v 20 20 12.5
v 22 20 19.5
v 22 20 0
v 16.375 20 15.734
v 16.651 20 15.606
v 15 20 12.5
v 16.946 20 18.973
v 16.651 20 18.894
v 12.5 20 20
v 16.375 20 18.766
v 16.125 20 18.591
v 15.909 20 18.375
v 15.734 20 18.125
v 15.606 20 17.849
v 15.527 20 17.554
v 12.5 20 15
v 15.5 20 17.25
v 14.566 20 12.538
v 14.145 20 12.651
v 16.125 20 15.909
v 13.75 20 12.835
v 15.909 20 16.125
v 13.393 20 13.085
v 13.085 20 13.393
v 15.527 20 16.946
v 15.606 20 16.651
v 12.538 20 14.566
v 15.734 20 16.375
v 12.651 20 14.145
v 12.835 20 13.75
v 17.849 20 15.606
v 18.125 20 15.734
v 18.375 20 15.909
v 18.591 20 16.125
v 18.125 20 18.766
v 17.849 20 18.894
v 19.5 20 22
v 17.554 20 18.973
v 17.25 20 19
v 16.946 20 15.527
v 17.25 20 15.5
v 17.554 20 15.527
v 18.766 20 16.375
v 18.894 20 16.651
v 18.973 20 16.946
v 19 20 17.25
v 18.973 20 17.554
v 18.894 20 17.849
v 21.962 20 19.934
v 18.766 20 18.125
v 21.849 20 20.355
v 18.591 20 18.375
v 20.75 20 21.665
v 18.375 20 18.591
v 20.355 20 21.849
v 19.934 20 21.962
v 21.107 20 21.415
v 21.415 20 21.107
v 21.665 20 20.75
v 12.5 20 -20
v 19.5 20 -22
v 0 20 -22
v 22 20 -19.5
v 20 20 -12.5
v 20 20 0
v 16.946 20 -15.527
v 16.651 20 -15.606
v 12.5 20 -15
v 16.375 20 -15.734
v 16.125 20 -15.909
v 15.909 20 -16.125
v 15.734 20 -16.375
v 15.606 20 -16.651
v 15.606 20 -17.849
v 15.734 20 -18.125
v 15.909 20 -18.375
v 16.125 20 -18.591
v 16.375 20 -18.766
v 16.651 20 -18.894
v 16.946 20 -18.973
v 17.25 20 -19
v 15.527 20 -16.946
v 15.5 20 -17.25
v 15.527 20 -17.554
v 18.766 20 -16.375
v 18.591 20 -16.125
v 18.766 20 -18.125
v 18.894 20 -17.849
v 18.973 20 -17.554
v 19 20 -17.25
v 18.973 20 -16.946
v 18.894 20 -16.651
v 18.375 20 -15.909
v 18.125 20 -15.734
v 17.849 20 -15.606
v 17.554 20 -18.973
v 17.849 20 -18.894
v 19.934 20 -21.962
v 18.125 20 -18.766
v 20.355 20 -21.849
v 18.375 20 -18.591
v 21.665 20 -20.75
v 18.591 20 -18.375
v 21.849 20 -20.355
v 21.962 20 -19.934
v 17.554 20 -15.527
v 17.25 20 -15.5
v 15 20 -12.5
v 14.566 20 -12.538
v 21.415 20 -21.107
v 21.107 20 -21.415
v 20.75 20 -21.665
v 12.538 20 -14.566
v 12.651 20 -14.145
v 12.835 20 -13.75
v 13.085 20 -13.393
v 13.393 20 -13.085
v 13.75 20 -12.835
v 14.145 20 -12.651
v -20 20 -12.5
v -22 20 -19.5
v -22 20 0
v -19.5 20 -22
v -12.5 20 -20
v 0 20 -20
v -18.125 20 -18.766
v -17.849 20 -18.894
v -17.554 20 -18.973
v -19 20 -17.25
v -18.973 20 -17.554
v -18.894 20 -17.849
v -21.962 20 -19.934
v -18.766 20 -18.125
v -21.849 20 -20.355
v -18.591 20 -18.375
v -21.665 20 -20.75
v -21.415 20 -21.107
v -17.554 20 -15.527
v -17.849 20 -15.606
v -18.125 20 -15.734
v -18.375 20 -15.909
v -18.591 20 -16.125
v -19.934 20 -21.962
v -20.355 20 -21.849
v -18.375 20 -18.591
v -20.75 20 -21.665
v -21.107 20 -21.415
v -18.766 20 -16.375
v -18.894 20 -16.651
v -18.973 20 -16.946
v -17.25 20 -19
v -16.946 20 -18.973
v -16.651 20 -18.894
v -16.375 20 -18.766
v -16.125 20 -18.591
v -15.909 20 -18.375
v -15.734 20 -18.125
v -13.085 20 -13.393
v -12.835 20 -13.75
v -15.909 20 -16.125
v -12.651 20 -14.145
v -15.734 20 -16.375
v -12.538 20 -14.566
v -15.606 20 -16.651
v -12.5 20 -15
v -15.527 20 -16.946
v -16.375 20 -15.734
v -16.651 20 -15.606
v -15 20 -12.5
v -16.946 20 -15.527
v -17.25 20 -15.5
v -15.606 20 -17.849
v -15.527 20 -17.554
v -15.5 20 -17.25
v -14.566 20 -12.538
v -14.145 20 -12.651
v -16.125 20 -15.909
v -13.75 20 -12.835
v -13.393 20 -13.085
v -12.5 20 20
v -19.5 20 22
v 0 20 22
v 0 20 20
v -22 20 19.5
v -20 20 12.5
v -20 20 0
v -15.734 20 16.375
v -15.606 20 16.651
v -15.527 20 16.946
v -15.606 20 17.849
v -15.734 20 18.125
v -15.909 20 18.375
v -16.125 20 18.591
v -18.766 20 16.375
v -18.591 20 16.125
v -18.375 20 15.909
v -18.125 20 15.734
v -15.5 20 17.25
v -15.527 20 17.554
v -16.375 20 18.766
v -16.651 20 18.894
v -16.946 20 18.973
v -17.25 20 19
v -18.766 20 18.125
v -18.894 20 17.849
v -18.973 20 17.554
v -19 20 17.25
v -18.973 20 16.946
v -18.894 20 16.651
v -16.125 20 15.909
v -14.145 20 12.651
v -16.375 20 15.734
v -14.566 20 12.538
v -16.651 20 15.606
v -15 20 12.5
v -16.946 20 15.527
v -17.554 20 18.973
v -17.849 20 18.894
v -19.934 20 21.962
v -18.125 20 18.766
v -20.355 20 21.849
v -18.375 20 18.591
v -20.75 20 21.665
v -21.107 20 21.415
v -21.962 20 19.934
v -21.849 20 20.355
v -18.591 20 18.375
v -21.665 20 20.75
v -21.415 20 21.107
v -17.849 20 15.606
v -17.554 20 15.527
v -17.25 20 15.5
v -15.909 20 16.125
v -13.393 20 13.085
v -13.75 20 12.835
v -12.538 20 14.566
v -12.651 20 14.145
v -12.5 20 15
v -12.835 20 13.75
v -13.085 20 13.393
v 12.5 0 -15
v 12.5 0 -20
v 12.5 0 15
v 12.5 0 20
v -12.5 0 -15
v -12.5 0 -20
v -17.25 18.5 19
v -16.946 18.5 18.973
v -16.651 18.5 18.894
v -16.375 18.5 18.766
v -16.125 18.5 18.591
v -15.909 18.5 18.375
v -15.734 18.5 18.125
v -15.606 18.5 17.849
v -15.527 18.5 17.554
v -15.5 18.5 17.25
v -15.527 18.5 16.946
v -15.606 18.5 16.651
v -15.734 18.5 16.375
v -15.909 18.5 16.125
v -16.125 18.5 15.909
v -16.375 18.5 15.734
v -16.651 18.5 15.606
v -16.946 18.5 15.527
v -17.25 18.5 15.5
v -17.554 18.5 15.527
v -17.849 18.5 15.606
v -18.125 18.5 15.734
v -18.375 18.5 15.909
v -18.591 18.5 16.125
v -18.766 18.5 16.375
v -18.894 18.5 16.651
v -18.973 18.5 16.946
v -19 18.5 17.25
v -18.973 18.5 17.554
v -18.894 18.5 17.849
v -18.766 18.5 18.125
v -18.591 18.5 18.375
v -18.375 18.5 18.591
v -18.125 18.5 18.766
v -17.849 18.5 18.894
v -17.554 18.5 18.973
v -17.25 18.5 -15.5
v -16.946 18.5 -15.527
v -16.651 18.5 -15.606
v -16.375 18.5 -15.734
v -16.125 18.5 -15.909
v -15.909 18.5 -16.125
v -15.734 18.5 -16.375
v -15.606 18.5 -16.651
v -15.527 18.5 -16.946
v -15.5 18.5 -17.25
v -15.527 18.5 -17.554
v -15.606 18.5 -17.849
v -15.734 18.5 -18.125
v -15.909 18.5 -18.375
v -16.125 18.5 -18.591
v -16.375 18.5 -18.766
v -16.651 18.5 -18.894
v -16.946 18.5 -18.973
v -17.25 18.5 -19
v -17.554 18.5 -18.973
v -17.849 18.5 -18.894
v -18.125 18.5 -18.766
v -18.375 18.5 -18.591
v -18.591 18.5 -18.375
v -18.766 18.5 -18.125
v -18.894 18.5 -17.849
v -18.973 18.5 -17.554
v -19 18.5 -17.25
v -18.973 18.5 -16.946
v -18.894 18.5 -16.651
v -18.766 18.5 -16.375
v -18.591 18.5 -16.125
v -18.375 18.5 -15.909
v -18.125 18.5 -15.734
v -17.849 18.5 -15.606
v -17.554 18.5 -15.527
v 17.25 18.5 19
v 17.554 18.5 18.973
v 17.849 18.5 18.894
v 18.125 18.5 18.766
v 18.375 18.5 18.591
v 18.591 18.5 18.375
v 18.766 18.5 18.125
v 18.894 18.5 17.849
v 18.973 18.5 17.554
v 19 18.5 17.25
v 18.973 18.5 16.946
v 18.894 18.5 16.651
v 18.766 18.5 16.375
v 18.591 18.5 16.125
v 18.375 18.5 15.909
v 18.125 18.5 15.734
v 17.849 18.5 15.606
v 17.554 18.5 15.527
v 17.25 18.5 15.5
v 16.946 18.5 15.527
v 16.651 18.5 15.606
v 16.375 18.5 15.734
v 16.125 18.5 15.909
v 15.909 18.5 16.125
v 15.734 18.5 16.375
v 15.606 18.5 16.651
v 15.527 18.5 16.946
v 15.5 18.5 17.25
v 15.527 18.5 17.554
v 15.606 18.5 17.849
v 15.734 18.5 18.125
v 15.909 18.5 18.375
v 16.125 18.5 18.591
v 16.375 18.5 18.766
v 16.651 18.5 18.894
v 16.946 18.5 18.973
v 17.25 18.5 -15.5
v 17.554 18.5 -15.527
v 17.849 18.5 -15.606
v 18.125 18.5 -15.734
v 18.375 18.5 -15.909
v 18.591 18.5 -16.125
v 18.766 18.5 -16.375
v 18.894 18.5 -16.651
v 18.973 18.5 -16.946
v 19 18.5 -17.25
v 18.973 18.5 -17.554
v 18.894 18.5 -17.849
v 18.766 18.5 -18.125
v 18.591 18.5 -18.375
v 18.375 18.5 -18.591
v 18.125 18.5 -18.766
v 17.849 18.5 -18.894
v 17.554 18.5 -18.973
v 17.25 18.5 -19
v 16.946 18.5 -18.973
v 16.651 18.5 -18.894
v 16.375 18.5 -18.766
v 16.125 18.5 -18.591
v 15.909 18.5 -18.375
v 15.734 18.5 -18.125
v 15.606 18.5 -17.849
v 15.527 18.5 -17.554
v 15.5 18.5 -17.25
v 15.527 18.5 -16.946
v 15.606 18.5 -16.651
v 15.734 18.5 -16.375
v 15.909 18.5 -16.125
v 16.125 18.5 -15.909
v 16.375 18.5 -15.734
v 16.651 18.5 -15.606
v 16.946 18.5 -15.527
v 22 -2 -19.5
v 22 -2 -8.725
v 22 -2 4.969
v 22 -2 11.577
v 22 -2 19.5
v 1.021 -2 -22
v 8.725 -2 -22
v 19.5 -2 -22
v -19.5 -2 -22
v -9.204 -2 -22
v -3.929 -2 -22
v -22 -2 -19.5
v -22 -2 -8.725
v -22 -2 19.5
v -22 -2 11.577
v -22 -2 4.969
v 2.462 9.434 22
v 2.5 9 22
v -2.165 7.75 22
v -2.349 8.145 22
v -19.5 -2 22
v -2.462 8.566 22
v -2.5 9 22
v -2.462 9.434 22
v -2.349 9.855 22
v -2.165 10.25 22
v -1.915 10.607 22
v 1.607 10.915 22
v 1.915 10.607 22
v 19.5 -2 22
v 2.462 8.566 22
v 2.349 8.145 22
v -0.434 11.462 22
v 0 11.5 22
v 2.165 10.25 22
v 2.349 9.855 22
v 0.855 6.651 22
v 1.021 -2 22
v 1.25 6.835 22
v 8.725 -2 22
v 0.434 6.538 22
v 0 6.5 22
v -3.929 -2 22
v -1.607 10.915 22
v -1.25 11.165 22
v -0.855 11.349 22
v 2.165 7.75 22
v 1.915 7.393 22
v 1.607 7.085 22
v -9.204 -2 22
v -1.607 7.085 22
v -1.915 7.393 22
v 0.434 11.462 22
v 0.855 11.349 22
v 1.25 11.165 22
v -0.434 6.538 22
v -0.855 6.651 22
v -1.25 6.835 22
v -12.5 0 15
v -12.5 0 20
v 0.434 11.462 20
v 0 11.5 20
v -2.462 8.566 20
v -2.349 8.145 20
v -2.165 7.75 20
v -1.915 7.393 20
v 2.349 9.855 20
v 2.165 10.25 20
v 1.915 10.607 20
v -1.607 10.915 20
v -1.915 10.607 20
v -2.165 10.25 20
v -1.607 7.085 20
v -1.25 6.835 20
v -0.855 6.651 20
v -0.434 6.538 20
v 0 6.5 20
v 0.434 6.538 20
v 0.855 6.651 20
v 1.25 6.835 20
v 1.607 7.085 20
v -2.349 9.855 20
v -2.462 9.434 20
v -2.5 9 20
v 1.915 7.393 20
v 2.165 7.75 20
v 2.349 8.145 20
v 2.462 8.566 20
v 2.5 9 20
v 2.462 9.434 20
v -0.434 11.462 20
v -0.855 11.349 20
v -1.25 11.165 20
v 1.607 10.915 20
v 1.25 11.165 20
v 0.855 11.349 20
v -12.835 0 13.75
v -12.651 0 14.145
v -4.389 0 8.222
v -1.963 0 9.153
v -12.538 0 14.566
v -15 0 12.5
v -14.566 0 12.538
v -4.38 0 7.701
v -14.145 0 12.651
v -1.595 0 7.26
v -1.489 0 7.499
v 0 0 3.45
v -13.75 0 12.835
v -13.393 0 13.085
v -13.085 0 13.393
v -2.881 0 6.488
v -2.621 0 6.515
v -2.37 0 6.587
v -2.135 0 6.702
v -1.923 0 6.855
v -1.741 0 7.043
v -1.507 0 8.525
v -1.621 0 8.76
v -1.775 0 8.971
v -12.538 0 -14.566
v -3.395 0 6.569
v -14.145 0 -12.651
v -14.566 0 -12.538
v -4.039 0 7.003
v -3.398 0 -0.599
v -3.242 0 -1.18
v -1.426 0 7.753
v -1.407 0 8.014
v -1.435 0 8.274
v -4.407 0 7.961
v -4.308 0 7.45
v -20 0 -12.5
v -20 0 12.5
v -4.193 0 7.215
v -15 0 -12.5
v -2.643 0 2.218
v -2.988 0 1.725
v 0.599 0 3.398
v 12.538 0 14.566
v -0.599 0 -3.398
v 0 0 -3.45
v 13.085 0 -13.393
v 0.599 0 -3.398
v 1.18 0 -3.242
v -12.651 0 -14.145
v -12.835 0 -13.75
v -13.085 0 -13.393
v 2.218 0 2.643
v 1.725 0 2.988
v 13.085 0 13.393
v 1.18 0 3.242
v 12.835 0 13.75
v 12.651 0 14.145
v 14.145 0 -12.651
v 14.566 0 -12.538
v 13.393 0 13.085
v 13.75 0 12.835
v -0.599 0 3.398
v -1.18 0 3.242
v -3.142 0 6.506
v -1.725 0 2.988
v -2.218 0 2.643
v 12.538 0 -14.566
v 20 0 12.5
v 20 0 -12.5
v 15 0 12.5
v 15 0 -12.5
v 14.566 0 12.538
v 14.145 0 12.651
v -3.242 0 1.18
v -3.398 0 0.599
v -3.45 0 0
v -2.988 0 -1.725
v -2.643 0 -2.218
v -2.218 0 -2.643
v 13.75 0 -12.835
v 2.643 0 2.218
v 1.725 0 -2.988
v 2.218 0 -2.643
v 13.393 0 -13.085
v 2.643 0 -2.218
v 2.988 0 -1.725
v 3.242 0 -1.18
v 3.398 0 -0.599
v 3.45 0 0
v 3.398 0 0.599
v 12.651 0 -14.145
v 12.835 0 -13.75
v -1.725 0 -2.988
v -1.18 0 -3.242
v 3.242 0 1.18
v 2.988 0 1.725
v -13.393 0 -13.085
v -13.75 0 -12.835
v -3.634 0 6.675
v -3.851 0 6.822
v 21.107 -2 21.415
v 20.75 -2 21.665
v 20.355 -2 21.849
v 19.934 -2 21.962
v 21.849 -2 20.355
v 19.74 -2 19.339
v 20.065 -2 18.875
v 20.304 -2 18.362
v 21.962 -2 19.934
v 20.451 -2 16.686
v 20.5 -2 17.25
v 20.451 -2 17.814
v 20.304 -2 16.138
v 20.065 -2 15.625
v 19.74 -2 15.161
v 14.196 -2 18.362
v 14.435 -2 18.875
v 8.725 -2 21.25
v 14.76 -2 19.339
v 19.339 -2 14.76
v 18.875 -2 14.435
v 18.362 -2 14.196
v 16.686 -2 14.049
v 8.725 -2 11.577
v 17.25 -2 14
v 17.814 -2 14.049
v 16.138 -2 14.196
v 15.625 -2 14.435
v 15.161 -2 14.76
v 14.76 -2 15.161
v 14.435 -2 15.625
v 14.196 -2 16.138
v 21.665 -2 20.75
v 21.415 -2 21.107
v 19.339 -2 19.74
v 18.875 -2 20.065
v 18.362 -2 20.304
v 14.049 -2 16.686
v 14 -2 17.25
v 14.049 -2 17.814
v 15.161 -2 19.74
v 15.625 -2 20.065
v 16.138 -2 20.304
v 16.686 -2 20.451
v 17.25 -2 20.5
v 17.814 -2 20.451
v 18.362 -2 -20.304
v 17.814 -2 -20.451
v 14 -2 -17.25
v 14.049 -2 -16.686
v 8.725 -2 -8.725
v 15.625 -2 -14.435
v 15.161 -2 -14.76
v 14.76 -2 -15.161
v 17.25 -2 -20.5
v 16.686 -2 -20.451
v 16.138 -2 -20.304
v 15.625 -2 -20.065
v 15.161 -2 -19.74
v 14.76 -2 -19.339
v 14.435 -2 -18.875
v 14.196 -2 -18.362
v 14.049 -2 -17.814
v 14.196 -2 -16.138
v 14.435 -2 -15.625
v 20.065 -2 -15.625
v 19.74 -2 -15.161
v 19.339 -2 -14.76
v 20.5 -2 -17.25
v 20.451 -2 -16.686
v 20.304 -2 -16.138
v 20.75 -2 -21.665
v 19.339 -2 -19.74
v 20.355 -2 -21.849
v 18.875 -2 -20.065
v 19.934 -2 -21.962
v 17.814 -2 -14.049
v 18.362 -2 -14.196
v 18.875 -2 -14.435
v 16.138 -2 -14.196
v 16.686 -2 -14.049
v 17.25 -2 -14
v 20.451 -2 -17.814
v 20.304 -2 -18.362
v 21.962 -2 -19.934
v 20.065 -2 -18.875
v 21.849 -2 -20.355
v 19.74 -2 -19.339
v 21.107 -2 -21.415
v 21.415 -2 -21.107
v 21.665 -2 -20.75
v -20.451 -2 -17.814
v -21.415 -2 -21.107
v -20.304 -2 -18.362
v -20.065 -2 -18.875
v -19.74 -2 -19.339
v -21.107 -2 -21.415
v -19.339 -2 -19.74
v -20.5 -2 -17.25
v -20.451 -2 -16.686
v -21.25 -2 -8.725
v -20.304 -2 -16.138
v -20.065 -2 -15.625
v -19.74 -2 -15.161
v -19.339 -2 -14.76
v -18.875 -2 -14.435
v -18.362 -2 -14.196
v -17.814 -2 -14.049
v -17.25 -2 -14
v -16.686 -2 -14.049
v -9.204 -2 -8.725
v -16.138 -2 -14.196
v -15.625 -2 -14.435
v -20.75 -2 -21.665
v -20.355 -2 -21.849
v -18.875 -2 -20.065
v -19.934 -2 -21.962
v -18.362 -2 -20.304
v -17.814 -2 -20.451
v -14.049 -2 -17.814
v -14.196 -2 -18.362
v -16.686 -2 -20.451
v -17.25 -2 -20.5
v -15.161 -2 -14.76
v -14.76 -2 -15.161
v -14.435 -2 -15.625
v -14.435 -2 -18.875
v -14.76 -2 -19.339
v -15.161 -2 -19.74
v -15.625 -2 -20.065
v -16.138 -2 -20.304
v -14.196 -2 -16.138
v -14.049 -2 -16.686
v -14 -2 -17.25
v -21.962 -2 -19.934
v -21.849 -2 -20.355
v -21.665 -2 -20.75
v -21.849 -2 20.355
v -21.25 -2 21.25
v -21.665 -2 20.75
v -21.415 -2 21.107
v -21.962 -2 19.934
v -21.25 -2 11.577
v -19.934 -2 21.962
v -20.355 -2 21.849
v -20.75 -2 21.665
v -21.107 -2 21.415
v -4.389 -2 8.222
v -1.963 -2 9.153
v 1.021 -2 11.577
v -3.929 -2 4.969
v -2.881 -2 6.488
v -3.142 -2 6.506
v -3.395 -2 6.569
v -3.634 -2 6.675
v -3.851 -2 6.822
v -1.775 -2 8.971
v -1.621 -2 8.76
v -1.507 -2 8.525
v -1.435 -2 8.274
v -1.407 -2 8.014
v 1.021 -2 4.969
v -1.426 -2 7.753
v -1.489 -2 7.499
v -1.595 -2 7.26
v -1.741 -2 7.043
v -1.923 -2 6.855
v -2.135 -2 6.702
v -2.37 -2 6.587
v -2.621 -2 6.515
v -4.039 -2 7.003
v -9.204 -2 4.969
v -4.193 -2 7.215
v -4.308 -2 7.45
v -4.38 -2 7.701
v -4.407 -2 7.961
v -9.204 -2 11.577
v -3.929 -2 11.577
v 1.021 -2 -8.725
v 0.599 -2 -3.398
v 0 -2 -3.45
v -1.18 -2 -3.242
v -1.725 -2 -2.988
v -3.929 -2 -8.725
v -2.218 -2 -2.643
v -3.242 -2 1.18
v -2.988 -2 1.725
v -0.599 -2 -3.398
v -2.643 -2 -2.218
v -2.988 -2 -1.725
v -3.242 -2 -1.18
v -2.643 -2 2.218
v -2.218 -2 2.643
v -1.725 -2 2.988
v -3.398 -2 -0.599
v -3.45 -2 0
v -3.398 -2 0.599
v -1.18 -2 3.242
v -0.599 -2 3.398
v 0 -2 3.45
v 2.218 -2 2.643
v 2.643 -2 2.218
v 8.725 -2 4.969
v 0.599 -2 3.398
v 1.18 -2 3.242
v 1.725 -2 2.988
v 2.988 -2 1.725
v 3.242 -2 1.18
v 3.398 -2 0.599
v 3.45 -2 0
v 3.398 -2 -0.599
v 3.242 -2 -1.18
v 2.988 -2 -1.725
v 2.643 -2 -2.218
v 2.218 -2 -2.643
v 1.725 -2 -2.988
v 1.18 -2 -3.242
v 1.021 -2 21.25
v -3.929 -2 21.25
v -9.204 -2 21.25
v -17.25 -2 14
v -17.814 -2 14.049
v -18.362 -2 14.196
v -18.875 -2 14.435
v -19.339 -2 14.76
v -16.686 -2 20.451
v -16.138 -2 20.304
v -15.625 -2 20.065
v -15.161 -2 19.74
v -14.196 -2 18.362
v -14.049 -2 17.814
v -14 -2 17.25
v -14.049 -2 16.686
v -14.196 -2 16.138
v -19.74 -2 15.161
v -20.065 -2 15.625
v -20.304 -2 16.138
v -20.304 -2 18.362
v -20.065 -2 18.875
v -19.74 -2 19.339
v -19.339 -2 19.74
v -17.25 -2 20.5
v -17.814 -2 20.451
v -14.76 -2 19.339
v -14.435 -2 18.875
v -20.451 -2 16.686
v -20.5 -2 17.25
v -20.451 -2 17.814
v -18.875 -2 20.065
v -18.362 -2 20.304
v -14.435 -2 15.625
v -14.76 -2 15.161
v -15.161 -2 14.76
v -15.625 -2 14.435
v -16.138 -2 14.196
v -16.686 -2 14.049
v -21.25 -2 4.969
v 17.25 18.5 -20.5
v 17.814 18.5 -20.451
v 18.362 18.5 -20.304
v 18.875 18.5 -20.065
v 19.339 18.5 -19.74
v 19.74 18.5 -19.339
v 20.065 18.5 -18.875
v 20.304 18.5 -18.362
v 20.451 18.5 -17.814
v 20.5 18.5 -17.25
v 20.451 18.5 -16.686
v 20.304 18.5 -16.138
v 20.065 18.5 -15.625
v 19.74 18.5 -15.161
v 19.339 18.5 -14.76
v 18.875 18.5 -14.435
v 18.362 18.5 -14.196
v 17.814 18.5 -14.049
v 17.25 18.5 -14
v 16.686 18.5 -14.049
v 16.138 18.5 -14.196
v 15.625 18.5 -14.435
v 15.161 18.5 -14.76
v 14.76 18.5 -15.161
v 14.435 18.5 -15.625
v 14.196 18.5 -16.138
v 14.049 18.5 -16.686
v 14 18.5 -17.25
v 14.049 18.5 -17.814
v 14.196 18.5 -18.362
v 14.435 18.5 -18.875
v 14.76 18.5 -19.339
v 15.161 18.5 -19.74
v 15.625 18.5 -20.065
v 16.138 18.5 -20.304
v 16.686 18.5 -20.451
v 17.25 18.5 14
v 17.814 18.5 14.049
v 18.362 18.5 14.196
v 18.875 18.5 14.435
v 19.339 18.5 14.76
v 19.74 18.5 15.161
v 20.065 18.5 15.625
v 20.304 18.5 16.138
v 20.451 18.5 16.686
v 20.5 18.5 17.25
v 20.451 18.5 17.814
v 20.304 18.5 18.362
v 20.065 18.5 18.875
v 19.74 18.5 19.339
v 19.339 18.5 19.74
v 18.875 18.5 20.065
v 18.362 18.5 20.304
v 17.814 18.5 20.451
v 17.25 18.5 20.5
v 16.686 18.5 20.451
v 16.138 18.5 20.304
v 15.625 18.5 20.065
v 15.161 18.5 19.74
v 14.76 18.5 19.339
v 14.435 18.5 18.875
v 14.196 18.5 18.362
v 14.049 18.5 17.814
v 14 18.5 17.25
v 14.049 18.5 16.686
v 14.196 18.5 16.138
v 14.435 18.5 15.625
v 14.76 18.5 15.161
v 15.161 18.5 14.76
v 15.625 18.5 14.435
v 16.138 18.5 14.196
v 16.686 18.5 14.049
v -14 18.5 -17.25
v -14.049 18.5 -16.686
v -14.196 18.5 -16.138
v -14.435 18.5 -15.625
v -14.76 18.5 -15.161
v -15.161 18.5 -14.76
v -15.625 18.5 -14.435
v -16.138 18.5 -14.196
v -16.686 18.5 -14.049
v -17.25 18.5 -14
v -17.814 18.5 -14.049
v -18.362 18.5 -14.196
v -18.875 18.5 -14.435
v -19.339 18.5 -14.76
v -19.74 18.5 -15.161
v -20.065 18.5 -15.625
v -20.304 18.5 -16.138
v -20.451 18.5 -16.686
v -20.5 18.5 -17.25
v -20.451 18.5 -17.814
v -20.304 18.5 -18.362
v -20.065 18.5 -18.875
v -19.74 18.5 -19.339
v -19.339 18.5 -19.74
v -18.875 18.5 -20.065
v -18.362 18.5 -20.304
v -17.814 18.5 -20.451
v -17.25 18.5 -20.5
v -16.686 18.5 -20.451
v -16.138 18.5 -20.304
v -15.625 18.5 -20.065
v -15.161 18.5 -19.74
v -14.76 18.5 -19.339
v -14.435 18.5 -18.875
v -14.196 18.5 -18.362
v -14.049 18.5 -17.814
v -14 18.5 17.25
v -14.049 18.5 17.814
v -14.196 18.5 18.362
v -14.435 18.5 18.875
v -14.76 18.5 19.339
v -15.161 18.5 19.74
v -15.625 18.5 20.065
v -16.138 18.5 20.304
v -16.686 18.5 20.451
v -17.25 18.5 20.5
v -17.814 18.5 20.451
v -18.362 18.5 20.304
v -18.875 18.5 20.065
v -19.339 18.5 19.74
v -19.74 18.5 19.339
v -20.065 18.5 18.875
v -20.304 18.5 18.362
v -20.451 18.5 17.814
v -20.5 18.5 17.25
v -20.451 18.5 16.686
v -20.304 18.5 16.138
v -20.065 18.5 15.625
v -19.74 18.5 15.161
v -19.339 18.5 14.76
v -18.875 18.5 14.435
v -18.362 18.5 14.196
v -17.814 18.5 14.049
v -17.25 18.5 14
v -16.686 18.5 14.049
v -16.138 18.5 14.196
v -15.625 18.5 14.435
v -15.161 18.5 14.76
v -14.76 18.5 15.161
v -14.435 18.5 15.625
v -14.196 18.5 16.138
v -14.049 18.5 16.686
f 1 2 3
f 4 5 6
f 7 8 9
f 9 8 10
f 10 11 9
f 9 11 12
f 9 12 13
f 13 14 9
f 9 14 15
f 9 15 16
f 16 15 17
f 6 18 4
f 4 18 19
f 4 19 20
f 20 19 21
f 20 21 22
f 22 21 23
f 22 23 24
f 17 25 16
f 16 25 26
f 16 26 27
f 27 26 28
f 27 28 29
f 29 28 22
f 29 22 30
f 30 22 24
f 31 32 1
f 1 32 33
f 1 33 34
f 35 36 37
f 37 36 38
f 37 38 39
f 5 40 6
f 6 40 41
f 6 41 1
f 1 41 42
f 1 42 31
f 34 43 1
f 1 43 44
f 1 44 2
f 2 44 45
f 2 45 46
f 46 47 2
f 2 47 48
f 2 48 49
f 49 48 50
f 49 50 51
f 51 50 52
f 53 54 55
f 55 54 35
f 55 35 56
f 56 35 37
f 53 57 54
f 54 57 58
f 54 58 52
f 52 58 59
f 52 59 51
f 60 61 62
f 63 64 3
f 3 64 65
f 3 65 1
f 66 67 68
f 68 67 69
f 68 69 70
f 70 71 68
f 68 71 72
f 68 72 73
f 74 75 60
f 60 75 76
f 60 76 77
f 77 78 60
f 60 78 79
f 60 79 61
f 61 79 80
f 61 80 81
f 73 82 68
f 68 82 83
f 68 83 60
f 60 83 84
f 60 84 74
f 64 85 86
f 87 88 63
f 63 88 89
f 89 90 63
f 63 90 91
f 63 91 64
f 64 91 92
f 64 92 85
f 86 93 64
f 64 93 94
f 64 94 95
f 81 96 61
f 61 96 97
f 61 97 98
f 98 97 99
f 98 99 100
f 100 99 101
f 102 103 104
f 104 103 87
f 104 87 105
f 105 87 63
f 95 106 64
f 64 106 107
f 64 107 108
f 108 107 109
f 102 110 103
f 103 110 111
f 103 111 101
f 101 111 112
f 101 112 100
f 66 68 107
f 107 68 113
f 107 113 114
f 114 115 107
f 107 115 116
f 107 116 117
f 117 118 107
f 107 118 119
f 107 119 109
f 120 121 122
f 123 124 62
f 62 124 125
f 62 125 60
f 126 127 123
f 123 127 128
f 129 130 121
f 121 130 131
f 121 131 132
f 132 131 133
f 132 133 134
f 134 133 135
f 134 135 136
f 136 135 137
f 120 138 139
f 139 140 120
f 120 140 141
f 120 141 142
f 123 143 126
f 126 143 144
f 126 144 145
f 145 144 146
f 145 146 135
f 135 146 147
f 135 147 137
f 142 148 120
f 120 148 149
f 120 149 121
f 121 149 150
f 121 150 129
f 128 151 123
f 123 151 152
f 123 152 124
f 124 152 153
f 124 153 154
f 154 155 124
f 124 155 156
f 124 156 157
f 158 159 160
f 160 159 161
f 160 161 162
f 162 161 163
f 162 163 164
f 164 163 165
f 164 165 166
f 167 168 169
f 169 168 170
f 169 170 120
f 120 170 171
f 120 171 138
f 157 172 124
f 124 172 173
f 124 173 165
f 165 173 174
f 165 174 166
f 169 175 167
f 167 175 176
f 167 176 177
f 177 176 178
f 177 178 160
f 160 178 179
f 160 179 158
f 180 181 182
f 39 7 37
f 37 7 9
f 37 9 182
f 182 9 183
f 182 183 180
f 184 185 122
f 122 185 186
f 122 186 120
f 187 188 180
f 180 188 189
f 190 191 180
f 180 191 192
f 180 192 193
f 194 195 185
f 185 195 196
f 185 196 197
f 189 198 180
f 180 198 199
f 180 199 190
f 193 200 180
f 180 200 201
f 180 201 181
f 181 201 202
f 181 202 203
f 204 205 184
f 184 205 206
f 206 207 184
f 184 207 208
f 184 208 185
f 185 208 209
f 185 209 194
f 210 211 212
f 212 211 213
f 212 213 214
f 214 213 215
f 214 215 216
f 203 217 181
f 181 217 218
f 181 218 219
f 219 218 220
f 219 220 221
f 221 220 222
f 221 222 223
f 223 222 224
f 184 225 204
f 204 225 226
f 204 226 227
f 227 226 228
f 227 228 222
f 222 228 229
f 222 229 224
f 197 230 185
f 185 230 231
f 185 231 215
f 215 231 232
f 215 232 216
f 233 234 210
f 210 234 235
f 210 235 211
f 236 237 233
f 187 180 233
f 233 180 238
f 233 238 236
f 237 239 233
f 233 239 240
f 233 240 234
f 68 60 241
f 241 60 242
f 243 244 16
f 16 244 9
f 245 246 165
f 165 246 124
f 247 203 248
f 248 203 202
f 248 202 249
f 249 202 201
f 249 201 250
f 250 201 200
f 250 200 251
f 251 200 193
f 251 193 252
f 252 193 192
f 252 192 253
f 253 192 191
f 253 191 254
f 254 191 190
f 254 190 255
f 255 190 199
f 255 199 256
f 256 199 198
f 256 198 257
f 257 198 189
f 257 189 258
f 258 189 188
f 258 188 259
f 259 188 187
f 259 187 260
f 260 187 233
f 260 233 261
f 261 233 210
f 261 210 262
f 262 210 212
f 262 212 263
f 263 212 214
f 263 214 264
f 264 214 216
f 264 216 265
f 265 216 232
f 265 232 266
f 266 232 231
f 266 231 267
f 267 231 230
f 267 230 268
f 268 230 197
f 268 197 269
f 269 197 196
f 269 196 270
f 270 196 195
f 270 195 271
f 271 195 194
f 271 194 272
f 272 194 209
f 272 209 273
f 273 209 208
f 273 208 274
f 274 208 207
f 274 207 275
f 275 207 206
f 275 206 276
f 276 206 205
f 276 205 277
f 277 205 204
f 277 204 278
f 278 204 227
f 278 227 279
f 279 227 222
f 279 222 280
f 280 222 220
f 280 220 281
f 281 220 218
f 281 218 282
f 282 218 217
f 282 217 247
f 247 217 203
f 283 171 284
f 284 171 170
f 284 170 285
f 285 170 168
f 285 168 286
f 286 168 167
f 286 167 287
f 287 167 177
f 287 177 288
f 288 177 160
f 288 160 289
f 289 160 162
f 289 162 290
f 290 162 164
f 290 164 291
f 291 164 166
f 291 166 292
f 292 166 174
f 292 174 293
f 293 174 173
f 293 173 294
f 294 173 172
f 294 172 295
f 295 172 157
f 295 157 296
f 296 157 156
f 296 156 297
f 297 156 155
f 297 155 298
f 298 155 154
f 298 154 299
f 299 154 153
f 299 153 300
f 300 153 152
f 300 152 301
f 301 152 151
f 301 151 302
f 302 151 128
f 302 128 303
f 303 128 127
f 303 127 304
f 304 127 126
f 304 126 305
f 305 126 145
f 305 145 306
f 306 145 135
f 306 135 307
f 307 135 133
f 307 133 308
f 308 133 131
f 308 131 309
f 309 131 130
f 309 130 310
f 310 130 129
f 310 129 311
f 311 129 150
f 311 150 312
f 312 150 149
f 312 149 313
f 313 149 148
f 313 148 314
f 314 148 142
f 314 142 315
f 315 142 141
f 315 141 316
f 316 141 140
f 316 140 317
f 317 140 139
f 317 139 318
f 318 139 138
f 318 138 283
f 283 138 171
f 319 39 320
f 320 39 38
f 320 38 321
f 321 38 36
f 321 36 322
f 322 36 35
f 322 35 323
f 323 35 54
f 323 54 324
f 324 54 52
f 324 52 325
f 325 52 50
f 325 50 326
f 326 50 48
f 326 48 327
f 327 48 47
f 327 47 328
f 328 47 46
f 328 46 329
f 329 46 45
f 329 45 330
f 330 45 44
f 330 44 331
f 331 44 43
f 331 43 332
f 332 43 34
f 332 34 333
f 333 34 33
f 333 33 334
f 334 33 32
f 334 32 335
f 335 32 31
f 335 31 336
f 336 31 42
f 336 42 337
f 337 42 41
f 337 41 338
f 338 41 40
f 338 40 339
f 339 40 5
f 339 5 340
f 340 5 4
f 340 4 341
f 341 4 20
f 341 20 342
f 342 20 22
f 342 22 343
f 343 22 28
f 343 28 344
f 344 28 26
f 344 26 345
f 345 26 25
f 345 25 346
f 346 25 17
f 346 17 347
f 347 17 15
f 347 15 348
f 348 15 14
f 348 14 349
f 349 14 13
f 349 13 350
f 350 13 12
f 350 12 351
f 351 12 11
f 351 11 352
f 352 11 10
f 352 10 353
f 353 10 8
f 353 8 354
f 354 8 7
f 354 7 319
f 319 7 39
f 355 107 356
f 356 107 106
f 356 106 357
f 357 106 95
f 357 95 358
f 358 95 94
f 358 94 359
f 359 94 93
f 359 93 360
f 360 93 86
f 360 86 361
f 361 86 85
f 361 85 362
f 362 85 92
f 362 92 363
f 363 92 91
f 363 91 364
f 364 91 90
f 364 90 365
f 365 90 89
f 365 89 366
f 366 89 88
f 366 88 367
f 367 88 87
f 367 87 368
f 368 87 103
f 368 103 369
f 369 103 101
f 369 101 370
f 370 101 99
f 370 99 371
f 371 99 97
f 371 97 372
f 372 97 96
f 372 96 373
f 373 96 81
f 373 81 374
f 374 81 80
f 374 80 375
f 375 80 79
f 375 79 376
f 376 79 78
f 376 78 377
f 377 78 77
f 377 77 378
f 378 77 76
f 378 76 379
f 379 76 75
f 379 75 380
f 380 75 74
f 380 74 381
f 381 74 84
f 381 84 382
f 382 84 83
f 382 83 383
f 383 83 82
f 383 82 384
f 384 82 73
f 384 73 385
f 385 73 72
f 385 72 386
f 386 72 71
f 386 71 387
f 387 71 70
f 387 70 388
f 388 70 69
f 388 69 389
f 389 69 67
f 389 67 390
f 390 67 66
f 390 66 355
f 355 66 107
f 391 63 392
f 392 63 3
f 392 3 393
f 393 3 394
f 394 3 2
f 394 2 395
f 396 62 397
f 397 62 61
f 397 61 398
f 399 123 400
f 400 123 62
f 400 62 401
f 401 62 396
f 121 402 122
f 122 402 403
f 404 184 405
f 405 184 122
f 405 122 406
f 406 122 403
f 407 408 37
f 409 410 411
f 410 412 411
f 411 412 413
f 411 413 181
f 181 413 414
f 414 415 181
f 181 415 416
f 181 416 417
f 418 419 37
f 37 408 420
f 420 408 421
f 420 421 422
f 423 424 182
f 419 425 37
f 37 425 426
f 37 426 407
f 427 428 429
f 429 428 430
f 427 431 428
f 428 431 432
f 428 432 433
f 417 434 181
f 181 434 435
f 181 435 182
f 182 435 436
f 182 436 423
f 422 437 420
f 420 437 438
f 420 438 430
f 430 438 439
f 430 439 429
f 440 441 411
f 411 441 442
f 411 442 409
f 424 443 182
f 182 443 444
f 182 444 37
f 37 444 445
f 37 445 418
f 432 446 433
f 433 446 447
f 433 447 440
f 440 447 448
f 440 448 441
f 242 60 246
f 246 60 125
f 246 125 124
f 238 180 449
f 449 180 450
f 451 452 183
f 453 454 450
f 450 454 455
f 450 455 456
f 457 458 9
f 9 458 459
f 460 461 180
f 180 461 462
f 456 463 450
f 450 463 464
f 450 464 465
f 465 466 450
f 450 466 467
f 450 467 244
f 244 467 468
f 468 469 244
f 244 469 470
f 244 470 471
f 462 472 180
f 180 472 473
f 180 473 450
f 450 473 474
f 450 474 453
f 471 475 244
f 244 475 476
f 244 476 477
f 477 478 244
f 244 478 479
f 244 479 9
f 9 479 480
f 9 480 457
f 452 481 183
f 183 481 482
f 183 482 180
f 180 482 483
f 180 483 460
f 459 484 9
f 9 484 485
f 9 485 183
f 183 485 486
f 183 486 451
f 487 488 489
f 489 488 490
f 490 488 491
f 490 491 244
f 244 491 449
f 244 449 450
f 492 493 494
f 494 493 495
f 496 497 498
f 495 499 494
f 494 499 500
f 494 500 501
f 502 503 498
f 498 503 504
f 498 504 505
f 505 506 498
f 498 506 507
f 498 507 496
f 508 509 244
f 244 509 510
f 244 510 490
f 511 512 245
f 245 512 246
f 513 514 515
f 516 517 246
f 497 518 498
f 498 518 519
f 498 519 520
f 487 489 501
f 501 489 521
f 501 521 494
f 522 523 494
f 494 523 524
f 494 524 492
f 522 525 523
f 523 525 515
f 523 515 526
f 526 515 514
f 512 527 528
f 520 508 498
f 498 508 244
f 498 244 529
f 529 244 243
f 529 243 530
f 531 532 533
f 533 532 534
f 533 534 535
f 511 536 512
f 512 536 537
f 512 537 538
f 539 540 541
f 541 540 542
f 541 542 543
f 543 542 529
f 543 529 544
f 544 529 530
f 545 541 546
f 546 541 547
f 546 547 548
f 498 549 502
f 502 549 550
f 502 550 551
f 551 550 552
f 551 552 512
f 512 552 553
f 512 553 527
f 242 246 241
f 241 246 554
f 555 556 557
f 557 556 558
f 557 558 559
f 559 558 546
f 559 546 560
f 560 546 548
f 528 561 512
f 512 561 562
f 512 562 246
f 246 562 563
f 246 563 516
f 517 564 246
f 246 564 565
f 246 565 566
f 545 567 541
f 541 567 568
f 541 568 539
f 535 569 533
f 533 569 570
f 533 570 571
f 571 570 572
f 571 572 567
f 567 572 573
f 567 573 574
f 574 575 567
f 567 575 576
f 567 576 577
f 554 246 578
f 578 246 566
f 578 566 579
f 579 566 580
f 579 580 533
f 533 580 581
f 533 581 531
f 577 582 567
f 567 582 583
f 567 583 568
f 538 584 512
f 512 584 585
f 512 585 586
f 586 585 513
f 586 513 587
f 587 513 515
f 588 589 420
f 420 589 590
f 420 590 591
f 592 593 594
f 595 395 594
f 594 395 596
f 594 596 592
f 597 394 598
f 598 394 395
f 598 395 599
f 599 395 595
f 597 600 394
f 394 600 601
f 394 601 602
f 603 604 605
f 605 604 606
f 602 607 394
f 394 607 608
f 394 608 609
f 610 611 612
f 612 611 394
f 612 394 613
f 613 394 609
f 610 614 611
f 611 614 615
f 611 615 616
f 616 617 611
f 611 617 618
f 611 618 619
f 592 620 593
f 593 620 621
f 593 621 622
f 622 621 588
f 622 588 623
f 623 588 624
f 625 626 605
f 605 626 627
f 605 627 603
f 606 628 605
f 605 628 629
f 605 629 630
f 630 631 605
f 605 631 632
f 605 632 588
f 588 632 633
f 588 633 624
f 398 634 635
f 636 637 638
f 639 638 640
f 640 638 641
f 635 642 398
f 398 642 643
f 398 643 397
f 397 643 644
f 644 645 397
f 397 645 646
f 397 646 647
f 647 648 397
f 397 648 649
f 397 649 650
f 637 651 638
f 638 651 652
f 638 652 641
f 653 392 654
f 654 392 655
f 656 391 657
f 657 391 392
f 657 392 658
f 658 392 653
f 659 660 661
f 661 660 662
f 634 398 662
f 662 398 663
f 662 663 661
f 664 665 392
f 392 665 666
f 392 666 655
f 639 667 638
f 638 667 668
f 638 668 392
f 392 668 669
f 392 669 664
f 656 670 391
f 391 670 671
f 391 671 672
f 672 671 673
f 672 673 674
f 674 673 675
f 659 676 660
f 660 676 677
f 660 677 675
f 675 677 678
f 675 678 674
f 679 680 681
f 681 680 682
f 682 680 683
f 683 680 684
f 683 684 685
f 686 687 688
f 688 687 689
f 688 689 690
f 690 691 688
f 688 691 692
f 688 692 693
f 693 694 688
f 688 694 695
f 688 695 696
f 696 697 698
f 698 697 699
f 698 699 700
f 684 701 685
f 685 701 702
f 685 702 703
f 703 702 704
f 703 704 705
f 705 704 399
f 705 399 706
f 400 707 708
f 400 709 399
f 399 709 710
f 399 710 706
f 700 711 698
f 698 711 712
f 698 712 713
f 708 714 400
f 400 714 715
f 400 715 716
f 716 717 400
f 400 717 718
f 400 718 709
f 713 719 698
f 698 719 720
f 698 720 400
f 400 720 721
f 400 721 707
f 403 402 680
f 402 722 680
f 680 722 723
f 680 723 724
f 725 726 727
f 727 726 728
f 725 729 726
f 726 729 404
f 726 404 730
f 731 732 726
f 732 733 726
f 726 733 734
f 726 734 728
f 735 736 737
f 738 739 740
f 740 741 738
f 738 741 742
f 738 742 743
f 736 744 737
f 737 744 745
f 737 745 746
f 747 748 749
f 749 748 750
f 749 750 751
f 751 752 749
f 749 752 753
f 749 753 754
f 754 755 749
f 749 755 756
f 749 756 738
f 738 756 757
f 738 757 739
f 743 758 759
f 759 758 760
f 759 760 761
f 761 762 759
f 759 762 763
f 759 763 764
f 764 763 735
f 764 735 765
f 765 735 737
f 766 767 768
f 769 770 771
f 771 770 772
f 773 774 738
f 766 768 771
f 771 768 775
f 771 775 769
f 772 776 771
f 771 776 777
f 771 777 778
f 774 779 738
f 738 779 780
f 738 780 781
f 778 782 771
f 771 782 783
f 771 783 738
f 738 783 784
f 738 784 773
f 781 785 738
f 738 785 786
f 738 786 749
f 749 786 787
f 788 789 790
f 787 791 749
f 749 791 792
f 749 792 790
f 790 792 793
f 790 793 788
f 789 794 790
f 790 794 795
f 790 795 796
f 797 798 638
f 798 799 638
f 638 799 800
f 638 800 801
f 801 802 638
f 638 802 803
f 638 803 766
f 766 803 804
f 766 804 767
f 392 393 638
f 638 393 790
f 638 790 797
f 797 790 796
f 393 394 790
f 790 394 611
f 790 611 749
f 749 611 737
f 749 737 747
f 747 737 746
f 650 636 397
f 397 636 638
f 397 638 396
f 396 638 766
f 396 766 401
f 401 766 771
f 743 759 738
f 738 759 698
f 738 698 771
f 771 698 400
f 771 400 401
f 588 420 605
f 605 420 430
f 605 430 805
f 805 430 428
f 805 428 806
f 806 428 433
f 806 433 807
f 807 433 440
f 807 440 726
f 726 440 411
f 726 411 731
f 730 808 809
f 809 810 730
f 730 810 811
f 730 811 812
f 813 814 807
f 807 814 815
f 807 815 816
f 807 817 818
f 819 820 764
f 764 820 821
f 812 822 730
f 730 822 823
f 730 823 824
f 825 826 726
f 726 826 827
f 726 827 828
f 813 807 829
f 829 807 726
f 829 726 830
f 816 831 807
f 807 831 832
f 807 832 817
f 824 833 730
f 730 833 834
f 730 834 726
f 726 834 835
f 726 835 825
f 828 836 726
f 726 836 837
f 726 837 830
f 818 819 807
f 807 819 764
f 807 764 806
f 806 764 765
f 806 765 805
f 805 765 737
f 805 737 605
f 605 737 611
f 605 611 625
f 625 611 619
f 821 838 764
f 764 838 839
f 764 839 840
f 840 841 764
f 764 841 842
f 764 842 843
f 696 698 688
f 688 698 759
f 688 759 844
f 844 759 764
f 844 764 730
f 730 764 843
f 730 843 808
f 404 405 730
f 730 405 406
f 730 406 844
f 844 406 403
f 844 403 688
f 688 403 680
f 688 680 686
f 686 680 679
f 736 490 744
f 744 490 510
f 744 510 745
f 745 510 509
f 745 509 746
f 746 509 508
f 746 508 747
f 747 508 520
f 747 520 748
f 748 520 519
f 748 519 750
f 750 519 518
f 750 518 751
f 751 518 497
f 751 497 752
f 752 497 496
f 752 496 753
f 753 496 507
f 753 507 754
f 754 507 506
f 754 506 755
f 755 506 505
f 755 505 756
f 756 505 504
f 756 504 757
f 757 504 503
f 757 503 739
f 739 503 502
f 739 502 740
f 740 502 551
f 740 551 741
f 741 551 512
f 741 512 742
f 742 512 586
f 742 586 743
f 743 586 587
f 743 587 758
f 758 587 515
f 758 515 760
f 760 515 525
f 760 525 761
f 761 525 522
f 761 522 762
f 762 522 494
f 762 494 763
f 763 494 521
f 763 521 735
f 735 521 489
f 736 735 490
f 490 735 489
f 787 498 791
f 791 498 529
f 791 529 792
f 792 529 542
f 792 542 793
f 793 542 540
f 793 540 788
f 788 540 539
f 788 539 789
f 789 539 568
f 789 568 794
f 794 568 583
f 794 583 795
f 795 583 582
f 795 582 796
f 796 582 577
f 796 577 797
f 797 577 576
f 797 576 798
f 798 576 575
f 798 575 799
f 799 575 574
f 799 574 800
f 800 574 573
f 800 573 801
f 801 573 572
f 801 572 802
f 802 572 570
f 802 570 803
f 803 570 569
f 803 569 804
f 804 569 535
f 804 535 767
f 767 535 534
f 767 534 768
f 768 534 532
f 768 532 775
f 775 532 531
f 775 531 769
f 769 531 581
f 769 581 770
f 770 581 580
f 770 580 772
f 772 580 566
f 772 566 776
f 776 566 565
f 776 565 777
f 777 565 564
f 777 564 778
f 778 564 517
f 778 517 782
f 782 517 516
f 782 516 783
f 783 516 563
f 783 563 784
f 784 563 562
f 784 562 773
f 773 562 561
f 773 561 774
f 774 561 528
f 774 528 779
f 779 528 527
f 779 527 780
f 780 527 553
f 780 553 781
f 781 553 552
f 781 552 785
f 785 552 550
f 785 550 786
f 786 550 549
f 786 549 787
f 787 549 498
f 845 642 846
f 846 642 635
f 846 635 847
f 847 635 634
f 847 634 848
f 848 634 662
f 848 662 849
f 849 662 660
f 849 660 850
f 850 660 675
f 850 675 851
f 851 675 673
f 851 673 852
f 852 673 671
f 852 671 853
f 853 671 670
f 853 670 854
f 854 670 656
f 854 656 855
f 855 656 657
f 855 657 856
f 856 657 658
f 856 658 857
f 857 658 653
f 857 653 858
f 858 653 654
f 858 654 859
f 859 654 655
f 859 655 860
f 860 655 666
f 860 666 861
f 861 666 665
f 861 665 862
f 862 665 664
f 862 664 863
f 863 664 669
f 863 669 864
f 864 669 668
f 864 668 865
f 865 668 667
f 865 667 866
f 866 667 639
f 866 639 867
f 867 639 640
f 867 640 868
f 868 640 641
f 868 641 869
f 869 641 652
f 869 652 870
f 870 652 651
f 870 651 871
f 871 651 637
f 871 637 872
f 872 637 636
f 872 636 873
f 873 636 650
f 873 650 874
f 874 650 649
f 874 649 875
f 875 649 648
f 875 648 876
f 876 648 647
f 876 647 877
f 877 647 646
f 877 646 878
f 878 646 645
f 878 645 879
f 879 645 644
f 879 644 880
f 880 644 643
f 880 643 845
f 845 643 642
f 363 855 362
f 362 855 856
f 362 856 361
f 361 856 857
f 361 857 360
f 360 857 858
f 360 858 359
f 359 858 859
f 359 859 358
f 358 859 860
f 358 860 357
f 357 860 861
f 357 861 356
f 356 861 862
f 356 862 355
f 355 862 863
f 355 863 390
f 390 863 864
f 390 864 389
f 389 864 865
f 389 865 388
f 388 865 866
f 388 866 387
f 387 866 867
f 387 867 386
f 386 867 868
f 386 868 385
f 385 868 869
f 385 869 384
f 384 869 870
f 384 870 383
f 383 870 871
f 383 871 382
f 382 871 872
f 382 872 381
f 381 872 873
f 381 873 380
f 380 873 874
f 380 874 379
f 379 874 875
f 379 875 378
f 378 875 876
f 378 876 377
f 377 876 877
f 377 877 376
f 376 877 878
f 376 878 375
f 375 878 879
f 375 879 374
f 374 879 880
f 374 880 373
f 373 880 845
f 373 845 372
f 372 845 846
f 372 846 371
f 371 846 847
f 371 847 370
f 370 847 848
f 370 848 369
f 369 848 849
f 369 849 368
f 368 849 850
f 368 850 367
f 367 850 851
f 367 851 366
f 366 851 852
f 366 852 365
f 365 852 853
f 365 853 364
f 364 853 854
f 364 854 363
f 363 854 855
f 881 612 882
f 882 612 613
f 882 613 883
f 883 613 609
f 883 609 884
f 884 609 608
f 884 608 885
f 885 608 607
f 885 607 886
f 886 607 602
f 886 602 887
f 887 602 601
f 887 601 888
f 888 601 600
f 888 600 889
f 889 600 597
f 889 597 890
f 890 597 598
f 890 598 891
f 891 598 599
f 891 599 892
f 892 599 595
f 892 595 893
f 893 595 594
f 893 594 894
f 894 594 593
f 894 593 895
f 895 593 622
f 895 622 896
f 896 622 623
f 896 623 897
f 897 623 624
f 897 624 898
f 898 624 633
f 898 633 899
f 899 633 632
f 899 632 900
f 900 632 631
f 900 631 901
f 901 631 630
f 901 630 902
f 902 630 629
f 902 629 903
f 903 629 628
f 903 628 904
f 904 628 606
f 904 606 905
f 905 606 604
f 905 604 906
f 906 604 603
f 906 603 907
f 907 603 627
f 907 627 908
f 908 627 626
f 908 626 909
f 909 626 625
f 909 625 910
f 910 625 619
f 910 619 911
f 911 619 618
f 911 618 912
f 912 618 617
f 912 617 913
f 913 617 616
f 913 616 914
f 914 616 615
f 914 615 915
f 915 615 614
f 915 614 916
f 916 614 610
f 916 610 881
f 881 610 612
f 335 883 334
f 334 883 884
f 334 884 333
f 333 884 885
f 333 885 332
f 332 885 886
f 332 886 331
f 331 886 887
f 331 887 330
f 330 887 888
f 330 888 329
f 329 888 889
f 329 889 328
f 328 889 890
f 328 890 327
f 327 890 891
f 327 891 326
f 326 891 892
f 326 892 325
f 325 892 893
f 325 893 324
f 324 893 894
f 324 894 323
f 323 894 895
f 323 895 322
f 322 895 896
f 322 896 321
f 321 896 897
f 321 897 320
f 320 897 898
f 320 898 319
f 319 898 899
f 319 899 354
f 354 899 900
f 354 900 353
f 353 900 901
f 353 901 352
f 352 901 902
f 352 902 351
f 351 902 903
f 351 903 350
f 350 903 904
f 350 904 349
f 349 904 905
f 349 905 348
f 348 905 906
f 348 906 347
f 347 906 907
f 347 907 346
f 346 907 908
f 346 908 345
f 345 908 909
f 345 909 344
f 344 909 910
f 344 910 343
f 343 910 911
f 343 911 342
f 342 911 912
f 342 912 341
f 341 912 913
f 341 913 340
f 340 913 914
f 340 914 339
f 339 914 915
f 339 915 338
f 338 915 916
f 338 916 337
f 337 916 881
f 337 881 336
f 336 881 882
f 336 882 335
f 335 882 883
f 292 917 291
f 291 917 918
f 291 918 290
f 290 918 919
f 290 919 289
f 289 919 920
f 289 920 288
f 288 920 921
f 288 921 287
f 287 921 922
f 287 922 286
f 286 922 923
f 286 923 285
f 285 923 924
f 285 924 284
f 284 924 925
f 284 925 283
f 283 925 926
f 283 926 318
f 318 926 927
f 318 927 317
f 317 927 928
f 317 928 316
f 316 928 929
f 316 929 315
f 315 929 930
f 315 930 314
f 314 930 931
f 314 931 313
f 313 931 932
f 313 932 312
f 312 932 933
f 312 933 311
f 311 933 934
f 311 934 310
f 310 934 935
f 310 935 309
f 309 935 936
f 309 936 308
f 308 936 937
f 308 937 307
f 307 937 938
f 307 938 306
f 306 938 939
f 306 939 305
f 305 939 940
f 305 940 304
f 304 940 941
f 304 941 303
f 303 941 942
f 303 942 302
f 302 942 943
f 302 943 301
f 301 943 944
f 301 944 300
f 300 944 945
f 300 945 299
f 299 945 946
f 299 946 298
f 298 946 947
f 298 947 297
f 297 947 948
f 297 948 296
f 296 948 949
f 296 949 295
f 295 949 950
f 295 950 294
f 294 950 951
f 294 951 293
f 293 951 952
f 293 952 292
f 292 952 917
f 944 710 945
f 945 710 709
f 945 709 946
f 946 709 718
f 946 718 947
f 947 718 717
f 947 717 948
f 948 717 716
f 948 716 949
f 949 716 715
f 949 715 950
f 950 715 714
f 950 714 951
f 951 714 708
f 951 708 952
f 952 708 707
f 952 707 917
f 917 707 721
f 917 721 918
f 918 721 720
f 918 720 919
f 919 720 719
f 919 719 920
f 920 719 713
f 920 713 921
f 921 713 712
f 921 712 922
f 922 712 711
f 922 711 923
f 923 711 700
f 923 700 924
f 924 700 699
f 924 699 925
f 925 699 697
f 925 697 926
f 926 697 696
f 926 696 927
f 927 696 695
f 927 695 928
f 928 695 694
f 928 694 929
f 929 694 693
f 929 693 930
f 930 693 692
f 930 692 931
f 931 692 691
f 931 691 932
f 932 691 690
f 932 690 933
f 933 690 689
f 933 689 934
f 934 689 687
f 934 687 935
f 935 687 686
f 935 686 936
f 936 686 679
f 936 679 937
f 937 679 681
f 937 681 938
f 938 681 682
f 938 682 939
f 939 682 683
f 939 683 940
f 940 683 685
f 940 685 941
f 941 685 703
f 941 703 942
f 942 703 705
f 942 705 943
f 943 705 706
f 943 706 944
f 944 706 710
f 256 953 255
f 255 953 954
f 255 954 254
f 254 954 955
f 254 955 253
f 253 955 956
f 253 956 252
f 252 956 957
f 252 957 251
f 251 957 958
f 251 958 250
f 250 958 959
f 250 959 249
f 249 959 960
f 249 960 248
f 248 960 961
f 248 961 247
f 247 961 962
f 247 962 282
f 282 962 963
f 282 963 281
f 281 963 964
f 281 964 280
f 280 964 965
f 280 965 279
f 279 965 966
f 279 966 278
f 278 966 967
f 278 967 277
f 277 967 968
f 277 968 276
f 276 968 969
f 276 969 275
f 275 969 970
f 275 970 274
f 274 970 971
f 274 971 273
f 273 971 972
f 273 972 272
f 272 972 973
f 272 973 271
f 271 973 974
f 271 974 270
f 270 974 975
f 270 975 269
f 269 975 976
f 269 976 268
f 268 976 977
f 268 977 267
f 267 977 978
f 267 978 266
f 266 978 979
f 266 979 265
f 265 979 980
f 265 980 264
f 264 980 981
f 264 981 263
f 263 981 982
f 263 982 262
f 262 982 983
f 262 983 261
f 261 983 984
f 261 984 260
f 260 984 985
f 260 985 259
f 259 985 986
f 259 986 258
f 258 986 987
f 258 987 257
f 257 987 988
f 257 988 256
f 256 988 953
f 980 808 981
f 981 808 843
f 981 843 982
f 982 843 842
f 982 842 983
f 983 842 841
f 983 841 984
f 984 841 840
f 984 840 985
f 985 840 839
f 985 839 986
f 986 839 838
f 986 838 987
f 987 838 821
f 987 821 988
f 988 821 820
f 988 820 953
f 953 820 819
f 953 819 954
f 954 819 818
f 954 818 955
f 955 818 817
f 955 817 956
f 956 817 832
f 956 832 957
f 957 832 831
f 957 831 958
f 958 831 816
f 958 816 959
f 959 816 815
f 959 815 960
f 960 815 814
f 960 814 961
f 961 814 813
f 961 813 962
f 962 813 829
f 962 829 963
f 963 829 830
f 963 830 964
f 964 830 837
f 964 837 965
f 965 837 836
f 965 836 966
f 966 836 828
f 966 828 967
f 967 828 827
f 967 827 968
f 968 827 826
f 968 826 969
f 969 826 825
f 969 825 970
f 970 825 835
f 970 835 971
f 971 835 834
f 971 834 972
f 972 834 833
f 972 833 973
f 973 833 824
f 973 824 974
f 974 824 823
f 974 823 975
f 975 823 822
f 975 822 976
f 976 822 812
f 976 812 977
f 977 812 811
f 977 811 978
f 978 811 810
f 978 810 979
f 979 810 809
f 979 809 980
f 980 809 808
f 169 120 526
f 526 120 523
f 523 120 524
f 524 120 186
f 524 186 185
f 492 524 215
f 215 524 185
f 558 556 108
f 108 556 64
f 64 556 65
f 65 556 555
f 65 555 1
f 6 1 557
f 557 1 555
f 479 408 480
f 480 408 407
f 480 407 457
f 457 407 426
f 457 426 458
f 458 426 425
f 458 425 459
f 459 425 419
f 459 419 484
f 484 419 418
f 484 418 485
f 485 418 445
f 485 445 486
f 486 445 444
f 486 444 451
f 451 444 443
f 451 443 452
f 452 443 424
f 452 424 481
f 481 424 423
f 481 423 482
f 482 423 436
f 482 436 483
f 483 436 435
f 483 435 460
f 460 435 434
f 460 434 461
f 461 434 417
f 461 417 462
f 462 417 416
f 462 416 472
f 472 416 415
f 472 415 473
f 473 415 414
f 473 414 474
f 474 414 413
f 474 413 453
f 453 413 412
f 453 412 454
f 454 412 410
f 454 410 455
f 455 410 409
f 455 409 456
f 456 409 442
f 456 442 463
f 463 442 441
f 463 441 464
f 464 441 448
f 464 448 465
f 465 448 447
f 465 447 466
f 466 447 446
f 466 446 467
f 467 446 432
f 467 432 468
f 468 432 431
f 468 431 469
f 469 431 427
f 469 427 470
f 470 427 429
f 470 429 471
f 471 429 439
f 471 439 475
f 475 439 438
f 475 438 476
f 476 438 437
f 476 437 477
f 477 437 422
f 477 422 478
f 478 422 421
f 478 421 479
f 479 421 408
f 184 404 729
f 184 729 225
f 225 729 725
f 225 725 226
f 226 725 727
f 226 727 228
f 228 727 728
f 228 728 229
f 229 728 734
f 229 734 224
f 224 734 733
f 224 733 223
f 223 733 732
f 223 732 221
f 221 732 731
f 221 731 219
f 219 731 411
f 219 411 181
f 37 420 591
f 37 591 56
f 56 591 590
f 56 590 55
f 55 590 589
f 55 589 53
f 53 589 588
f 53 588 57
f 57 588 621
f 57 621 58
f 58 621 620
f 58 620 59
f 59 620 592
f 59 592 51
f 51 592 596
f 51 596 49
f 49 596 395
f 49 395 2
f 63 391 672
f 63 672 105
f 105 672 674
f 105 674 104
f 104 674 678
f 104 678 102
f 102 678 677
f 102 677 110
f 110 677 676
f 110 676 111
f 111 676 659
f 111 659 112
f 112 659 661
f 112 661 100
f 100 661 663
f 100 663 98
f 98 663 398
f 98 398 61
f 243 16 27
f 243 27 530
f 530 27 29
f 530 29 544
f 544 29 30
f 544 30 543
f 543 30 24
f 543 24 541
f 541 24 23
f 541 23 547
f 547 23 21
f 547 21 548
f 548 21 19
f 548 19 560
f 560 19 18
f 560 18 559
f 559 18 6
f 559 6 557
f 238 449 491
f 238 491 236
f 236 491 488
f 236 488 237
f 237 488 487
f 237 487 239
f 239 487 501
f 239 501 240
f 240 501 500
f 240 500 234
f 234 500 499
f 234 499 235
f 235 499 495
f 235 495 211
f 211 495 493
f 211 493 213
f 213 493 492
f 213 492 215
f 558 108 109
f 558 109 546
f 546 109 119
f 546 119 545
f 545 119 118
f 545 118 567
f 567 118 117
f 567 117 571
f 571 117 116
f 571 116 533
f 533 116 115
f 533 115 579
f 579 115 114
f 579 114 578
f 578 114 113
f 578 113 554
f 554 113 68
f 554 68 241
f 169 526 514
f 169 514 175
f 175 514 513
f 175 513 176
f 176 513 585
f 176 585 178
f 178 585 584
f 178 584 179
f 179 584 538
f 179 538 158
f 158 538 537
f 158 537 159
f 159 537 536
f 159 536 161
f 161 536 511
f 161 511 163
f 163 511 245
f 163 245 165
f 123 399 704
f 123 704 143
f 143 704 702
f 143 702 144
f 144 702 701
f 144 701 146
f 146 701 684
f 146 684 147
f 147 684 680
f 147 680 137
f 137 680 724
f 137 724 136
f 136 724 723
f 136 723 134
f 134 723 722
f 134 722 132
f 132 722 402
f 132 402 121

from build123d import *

# Parameters (mm, degrees)
SKETCH1_W           = 44
SKETCH1_H           = 44
SKETCH1_W_2         = 25
SKETCH1_H_2         = 40
BOSS_EXTRUDE4_DEPTH = 20
SKETCH4_W           = 44
SKETCH4_H           = 44
BOSS_EXTRUDE5_DEPTH = 2
SKETCH5_R           = 3.45
CUT_EXTRUDE2_DEPTH  = 2
SKETCH6_R           = 1.75
CUT_EXTRUDE3_DEPTH  = 23
SKETCH7_R           = 3.25
CUT_EXTRUDE4_DEPTH  = 20.5
SKETCH10_W          = 7.5
SKETCH10_H          = 25
CUT_EXTRUDE5_DEPTH  = 20
CUT_EXTRUDE6_REACH  = 46
SKETCH11_R          = 2.5
FILLET1_R           = 2.5


with BuildPart() as part:
    # Sketch1 → Boss-Extrude4 (new body)
    with BuildSketch(Plane(origin=(0, 0, 0), x_dir=(1, 0, 0), z_dir=(0, 1, 0))):
        Rectangle(SKETCH1_W, SKETCH1_H)
        Rectangle(SKETCH1_W_2, SKETCH1_H_2, mode=Mode.SUBTRACT)
    extrude(amount=BOSS_EXTRUDE4_DEPTH)

    # Sketch4 → Boss-Extrude5 (add)
    with BuildSketch(Plane.XZ):
        Rectangle(SKETCH4_W, SKETCH4_H)
    extrude(amount=BOSS_EXTRUDE5_DEPTH)

    # Sketch5 → Cut-Extrude2 (cut)
    with BuildSketch(Plane(origin=(0, 0, 0), x_dir=(1, 0, 0), z_dir=(0, 1, 0))):
        Circle(SKETCH5_R)
        with BuildLine():
            Line((-4.388708392, -8.222009531), (-1.963213799, -9.153124979))
            ThreePointArc((-1.963213799, -9.153124979), (-2.369591464, -6.58702732), (-4.388708392, -8.222009531))
        make_face()
    extrude(amount=-CUT_EXTRUDE2_DEPTH, mode=Mode.SUBTRACT)

    # Sketch6 → Cut-Extrude3 (cut, through all)
    with BuildSketch(Plane(origin=(0, 20, 0), x_dir=(1, 0, 0), z_dir=(0, 1, 0))):
        with Locations((-17.25, 17.25)):
            Circle(SKETCH6_R)
        with Locations((-17.25, -17.25)):
            Circle(SKETCH6_R)
    cut_extrude3 = extrude(amount=-CUT_EXTRUDE3_DEPTH, mode=Mode.SUBTRACT)

    # Mirror1: Cut-Extrude3 across plane
    add(cut_extrude3.mirror(Plane(origin=(0, 0, 0), x_dir=(0, 0, 1), z_dir=(1, 0, 0))), mode=Mode.SUBTRACT)

    # Sketch7 → Cut-Extrude4 (cut)
    with BuildSketch(Plane.XZ.offset(2)):
        with Locations((-17.25, 17.25)):
            Circle(SKETCH7_R)
        with Locations((17.25, 17.25)):
            Circle(SKETCH7_R)
        with Locations((17.25, -17.25)):
            Circle(SKETCH7_R)
        with Locations((-17.25, -17.25)):
            Circle(SKETCH7_R)
    extrude(amount=-CUT_EXTRUDE4_DEPTH, mode=Mode.SUBTRACT)

    # Sketch10 → Cut-Extrude5 (cut)
    with BuildSketch(Plane(origin=(0, 20, 0), x_dir=(1, 0, 0), z_dir=(0, 1, 0))):
        with Locations((-16.25, 0)):
            Rectangle(SKETCH10_W, SKETCH10_H)
    cut_extrude5 = extrude(amount=-CUT_EXTRUDE5_DEPTH, mode=Mode.SUBTRACT)

    # Mirror2: Cut-Extrude5 across plane
    add(cut_extrude5.mirror(Plane(origin=(0, 0, 0), x_dir=(0, 0, 1), z_dir=(1, 0, 0))), mode=Mode.SUBTRACT)

    # Sketch11 → Cut-Extrude6 (cut, up to next)
    with BuildSketch(Plane.XY.offset(22), mode=Mode.PRIVATE) as cut_extrude6_sk1:
        with Locations((0, 9)):
            Circle(SKETCH11_R)
    cut_extrude6_tool1 = extrude(cut_extrude6_sk1.sketch, amount=-CUT_EXTRUDE6_REACH, mode=Mode.PRIVATE) & part.part
    add(cut_extrude6_tool1.solids().sort_by_distance((0, 9, 22))[0], mode=Mode.SUBTRACT)

    # Fillet1
    fillet1_edges = [part.edges().sort_by_distance(p)[0] for p in [
        (-12.5, 10, 12.5),
        (-12.5, 10, -12.5),
        (12.5, 10, 12.5),
        (12.5, 10, -12.5),
        (22, 9, 22),
        (-22, 9, 22),
        (-22, 9, -22),
        (22, 9, -22),
    ]]
    fillet(fillet1_edges, radius=FILLET1_R)


solid = part.part
